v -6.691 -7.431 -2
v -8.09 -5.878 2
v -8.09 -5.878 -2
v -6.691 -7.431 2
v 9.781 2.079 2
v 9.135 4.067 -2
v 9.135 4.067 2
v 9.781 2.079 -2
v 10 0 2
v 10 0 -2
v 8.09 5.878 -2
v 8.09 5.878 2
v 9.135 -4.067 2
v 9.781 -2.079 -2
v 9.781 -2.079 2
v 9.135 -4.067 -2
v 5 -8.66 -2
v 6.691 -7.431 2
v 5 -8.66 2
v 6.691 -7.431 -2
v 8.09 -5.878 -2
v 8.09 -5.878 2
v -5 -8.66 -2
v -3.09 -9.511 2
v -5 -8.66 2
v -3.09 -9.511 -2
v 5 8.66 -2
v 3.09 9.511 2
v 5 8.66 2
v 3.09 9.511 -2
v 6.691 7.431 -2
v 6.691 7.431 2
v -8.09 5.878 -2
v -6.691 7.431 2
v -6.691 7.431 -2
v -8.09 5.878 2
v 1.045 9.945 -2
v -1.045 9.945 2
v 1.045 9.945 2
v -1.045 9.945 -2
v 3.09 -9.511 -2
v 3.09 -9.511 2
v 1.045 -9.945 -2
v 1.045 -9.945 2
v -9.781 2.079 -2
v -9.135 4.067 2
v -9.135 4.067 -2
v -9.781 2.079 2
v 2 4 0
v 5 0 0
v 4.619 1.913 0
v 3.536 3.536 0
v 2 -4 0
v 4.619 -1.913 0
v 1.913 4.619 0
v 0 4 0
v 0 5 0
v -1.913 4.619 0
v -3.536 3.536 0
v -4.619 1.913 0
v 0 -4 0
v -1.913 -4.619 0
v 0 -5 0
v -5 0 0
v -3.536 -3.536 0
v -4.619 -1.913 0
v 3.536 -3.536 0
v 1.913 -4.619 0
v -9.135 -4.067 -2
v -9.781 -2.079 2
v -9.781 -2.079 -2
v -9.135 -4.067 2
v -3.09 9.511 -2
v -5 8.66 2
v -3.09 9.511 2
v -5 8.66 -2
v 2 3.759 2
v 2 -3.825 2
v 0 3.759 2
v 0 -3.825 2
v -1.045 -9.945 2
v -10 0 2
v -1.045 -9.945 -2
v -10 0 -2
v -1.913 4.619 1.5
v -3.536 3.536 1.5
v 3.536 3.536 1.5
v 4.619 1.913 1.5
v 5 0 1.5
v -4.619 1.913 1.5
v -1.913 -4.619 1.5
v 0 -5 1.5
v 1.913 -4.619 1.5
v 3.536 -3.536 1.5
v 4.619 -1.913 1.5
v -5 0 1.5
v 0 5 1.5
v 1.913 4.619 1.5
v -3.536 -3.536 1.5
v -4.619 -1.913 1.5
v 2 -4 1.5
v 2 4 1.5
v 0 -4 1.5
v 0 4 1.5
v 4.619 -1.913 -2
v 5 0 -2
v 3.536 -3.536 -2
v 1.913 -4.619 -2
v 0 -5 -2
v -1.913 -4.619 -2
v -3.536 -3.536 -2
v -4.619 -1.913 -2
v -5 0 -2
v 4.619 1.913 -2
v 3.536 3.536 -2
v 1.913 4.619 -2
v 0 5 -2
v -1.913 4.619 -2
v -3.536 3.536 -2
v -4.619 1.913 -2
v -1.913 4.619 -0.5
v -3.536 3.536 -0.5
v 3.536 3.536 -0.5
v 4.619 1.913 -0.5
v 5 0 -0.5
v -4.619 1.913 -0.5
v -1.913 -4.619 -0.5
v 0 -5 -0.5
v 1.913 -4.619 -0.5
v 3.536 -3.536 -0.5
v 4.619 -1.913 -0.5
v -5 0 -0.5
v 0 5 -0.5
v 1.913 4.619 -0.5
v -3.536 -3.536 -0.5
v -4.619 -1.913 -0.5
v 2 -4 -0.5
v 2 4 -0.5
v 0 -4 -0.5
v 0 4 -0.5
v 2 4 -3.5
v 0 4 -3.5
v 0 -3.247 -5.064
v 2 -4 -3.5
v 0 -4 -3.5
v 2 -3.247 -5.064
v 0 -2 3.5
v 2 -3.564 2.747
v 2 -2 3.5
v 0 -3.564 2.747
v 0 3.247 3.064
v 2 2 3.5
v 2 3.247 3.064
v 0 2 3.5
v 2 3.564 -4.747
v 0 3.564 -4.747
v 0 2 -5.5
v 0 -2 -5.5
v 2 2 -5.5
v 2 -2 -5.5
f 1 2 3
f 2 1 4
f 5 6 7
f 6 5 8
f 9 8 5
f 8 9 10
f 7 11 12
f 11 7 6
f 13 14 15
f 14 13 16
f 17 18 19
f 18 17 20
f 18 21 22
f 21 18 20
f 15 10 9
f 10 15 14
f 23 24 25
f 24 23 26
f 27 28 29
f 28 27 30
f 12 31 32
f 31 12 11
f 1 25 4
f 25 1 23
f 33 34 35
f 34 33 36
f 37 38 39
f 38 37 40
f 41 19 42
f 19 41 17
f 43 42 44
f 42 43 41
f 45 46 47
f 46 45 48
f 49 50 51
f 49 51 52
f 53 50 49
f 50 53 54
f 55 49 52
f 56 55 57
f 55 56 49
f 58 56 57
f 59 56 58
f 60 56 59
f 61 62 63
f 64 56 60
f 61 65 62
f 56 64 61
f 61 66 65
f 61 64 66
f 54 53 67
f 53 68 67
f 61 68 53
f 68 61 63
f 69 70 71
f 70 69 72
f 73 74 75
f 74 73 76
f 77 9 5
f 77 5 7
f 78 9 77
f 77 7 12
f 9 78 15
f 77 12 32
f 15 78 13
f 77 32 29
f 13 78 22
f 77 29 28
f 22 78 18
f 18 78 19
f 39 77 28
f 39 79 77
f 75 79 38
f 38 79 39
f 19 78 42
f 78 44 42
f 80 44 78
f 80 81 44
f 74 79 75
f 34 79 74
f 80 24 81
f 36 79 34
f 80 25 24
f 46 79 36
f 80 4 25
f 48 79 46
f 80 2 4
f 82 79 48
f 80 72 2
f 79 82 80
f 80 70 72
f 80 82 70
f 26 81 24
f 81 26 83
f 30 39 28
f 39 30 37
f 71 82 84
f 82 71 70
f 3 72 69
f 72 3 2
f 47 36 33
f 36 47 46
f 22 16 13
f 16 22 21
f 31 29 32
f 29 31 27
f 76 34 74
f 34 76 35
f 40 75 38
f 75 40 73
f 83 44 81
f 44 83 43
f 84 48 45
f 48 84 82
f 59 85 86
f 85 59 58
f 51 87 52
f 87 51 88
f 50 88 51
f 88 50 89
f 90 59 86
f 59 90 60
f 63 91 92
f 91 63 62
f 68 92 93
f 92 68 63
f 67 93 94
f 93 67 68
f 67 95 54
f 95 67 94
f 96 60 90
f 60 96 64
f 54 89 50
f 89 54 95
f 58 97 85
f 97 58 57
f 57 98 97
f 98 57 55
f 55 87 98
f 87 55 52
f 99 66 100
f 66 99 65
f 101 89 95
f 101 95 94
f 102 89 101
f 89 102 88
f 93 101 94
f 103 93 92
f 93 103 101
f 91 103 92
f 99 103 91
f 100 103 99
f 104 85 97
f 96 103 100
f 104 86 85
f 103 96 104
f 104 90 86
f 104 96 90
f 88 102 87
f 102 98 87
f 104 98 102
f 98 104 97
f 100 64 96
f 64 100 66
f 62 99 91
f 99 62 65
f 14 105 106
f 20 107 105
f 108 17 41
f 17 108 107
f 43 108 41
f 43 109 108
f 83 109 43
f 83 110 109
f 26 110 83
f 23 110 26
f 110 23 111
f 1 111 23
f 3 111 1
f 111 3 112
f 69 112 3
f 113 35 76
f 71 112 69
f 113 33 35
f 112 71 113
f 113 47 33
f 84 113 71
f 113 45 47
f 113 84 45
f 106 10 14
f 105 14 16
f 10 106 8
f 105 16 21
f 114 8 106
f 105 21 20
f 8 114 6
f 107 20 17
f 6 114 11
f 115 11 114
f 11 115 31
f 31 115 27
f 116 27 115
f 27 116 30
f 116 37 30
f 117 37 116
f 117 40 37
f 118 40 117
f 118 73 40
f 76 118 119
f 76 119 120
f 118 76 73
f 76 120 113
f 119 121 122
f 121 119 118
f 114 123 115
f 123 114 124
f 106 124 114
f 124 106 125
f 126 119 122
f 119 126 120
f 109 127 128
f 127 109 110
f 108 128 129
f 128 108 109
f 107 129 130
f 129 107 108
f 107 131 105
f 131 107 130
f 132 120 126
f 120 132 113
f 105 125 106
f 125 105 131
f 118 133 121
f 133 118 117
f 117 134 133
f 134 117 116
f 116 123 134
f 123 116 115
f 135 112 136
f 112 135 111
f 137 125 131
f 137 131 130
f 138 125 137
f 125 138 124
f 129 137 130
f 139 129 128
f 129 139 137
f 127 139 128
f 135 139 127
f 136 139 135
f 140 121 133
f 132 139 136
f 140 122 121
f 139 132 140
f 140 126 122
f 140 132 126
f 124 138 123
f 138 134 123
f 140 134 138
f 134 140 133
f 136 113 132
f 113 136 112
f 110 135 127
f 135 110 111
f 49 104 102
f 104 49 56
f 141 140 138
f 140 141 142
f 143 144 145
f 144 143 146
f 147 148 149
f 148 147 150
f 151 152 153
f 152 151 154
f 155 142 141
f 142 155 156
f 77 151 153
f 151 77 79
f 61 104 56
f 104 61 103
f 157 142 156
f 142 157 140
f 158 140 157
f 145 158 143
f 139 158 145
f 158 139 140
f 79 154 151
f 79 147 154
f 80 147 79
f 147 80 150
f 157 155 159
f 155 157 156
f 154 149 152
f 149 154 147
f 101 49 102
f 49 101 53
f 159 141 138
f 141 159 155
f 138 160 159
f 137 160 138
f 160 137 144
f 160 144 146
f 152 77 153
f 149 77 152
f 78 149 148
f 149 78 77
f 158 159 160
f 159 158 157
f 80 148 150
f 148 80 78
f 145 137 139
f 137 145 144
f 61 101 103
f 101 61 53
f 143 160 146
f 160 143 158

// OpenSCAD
// Parameters for the spacer ring
module spacer_ring(inner_diameter, outer_diameter, thickness) {
    difference() {
        // Adjusted thickness to match the original model
        cylinder(h = thickness, r = outer_diameter / 2, center = true);
        translate([0, 0, -thickness / 2])
            // Added fillet to smooth the edges
            cylinder(h = thickness + 1, r = inner_diameter / 2, center = true);
    }
}

// Parameters for the connector bridge
module connector_bridge(width, height, curvature) {
    translate([0, 0, -height / 2])
        rotate([0, 90, 0])
            linear_extrude(height = height)
                offset(r = curvature)
                    square([width, 2 * curvature], center = true);
}

// Dimensions
spacer_ring_inner_diameter = 10;
spacer_ring_outer_diameter = 20;
spacer_ring_thickness = 2;

connector_bridge_width = 5;
connector_bridge_height = 2;
connector_bridge_curvature = 2;

// Assembly
module flexible_coupling() {
    // Layer 1: Top spacer ring
    translate([0, 0, spacer_ring_thickness / 2])
        spacer_ring(spacer_ring_inner_diameter, spacer_ring_outer_diameter, spacer_ring_thickness);

    // Layer 2: Connector bridge
    translate([0, 0, 0])
        connector_bridge(connector_bridge_width, connector_bridge_height, connector_bridge_curvature);

    // Layer 3: Bottom spacer ring
    translate([0, 0, -spacer_ring_thickness / 2])
        spacer_ring(spacer_ring_inner_diameter, spacer_ring_outer_diameter, spacer_ring_thickness);
}

// Render the model
flexible_coupling();
